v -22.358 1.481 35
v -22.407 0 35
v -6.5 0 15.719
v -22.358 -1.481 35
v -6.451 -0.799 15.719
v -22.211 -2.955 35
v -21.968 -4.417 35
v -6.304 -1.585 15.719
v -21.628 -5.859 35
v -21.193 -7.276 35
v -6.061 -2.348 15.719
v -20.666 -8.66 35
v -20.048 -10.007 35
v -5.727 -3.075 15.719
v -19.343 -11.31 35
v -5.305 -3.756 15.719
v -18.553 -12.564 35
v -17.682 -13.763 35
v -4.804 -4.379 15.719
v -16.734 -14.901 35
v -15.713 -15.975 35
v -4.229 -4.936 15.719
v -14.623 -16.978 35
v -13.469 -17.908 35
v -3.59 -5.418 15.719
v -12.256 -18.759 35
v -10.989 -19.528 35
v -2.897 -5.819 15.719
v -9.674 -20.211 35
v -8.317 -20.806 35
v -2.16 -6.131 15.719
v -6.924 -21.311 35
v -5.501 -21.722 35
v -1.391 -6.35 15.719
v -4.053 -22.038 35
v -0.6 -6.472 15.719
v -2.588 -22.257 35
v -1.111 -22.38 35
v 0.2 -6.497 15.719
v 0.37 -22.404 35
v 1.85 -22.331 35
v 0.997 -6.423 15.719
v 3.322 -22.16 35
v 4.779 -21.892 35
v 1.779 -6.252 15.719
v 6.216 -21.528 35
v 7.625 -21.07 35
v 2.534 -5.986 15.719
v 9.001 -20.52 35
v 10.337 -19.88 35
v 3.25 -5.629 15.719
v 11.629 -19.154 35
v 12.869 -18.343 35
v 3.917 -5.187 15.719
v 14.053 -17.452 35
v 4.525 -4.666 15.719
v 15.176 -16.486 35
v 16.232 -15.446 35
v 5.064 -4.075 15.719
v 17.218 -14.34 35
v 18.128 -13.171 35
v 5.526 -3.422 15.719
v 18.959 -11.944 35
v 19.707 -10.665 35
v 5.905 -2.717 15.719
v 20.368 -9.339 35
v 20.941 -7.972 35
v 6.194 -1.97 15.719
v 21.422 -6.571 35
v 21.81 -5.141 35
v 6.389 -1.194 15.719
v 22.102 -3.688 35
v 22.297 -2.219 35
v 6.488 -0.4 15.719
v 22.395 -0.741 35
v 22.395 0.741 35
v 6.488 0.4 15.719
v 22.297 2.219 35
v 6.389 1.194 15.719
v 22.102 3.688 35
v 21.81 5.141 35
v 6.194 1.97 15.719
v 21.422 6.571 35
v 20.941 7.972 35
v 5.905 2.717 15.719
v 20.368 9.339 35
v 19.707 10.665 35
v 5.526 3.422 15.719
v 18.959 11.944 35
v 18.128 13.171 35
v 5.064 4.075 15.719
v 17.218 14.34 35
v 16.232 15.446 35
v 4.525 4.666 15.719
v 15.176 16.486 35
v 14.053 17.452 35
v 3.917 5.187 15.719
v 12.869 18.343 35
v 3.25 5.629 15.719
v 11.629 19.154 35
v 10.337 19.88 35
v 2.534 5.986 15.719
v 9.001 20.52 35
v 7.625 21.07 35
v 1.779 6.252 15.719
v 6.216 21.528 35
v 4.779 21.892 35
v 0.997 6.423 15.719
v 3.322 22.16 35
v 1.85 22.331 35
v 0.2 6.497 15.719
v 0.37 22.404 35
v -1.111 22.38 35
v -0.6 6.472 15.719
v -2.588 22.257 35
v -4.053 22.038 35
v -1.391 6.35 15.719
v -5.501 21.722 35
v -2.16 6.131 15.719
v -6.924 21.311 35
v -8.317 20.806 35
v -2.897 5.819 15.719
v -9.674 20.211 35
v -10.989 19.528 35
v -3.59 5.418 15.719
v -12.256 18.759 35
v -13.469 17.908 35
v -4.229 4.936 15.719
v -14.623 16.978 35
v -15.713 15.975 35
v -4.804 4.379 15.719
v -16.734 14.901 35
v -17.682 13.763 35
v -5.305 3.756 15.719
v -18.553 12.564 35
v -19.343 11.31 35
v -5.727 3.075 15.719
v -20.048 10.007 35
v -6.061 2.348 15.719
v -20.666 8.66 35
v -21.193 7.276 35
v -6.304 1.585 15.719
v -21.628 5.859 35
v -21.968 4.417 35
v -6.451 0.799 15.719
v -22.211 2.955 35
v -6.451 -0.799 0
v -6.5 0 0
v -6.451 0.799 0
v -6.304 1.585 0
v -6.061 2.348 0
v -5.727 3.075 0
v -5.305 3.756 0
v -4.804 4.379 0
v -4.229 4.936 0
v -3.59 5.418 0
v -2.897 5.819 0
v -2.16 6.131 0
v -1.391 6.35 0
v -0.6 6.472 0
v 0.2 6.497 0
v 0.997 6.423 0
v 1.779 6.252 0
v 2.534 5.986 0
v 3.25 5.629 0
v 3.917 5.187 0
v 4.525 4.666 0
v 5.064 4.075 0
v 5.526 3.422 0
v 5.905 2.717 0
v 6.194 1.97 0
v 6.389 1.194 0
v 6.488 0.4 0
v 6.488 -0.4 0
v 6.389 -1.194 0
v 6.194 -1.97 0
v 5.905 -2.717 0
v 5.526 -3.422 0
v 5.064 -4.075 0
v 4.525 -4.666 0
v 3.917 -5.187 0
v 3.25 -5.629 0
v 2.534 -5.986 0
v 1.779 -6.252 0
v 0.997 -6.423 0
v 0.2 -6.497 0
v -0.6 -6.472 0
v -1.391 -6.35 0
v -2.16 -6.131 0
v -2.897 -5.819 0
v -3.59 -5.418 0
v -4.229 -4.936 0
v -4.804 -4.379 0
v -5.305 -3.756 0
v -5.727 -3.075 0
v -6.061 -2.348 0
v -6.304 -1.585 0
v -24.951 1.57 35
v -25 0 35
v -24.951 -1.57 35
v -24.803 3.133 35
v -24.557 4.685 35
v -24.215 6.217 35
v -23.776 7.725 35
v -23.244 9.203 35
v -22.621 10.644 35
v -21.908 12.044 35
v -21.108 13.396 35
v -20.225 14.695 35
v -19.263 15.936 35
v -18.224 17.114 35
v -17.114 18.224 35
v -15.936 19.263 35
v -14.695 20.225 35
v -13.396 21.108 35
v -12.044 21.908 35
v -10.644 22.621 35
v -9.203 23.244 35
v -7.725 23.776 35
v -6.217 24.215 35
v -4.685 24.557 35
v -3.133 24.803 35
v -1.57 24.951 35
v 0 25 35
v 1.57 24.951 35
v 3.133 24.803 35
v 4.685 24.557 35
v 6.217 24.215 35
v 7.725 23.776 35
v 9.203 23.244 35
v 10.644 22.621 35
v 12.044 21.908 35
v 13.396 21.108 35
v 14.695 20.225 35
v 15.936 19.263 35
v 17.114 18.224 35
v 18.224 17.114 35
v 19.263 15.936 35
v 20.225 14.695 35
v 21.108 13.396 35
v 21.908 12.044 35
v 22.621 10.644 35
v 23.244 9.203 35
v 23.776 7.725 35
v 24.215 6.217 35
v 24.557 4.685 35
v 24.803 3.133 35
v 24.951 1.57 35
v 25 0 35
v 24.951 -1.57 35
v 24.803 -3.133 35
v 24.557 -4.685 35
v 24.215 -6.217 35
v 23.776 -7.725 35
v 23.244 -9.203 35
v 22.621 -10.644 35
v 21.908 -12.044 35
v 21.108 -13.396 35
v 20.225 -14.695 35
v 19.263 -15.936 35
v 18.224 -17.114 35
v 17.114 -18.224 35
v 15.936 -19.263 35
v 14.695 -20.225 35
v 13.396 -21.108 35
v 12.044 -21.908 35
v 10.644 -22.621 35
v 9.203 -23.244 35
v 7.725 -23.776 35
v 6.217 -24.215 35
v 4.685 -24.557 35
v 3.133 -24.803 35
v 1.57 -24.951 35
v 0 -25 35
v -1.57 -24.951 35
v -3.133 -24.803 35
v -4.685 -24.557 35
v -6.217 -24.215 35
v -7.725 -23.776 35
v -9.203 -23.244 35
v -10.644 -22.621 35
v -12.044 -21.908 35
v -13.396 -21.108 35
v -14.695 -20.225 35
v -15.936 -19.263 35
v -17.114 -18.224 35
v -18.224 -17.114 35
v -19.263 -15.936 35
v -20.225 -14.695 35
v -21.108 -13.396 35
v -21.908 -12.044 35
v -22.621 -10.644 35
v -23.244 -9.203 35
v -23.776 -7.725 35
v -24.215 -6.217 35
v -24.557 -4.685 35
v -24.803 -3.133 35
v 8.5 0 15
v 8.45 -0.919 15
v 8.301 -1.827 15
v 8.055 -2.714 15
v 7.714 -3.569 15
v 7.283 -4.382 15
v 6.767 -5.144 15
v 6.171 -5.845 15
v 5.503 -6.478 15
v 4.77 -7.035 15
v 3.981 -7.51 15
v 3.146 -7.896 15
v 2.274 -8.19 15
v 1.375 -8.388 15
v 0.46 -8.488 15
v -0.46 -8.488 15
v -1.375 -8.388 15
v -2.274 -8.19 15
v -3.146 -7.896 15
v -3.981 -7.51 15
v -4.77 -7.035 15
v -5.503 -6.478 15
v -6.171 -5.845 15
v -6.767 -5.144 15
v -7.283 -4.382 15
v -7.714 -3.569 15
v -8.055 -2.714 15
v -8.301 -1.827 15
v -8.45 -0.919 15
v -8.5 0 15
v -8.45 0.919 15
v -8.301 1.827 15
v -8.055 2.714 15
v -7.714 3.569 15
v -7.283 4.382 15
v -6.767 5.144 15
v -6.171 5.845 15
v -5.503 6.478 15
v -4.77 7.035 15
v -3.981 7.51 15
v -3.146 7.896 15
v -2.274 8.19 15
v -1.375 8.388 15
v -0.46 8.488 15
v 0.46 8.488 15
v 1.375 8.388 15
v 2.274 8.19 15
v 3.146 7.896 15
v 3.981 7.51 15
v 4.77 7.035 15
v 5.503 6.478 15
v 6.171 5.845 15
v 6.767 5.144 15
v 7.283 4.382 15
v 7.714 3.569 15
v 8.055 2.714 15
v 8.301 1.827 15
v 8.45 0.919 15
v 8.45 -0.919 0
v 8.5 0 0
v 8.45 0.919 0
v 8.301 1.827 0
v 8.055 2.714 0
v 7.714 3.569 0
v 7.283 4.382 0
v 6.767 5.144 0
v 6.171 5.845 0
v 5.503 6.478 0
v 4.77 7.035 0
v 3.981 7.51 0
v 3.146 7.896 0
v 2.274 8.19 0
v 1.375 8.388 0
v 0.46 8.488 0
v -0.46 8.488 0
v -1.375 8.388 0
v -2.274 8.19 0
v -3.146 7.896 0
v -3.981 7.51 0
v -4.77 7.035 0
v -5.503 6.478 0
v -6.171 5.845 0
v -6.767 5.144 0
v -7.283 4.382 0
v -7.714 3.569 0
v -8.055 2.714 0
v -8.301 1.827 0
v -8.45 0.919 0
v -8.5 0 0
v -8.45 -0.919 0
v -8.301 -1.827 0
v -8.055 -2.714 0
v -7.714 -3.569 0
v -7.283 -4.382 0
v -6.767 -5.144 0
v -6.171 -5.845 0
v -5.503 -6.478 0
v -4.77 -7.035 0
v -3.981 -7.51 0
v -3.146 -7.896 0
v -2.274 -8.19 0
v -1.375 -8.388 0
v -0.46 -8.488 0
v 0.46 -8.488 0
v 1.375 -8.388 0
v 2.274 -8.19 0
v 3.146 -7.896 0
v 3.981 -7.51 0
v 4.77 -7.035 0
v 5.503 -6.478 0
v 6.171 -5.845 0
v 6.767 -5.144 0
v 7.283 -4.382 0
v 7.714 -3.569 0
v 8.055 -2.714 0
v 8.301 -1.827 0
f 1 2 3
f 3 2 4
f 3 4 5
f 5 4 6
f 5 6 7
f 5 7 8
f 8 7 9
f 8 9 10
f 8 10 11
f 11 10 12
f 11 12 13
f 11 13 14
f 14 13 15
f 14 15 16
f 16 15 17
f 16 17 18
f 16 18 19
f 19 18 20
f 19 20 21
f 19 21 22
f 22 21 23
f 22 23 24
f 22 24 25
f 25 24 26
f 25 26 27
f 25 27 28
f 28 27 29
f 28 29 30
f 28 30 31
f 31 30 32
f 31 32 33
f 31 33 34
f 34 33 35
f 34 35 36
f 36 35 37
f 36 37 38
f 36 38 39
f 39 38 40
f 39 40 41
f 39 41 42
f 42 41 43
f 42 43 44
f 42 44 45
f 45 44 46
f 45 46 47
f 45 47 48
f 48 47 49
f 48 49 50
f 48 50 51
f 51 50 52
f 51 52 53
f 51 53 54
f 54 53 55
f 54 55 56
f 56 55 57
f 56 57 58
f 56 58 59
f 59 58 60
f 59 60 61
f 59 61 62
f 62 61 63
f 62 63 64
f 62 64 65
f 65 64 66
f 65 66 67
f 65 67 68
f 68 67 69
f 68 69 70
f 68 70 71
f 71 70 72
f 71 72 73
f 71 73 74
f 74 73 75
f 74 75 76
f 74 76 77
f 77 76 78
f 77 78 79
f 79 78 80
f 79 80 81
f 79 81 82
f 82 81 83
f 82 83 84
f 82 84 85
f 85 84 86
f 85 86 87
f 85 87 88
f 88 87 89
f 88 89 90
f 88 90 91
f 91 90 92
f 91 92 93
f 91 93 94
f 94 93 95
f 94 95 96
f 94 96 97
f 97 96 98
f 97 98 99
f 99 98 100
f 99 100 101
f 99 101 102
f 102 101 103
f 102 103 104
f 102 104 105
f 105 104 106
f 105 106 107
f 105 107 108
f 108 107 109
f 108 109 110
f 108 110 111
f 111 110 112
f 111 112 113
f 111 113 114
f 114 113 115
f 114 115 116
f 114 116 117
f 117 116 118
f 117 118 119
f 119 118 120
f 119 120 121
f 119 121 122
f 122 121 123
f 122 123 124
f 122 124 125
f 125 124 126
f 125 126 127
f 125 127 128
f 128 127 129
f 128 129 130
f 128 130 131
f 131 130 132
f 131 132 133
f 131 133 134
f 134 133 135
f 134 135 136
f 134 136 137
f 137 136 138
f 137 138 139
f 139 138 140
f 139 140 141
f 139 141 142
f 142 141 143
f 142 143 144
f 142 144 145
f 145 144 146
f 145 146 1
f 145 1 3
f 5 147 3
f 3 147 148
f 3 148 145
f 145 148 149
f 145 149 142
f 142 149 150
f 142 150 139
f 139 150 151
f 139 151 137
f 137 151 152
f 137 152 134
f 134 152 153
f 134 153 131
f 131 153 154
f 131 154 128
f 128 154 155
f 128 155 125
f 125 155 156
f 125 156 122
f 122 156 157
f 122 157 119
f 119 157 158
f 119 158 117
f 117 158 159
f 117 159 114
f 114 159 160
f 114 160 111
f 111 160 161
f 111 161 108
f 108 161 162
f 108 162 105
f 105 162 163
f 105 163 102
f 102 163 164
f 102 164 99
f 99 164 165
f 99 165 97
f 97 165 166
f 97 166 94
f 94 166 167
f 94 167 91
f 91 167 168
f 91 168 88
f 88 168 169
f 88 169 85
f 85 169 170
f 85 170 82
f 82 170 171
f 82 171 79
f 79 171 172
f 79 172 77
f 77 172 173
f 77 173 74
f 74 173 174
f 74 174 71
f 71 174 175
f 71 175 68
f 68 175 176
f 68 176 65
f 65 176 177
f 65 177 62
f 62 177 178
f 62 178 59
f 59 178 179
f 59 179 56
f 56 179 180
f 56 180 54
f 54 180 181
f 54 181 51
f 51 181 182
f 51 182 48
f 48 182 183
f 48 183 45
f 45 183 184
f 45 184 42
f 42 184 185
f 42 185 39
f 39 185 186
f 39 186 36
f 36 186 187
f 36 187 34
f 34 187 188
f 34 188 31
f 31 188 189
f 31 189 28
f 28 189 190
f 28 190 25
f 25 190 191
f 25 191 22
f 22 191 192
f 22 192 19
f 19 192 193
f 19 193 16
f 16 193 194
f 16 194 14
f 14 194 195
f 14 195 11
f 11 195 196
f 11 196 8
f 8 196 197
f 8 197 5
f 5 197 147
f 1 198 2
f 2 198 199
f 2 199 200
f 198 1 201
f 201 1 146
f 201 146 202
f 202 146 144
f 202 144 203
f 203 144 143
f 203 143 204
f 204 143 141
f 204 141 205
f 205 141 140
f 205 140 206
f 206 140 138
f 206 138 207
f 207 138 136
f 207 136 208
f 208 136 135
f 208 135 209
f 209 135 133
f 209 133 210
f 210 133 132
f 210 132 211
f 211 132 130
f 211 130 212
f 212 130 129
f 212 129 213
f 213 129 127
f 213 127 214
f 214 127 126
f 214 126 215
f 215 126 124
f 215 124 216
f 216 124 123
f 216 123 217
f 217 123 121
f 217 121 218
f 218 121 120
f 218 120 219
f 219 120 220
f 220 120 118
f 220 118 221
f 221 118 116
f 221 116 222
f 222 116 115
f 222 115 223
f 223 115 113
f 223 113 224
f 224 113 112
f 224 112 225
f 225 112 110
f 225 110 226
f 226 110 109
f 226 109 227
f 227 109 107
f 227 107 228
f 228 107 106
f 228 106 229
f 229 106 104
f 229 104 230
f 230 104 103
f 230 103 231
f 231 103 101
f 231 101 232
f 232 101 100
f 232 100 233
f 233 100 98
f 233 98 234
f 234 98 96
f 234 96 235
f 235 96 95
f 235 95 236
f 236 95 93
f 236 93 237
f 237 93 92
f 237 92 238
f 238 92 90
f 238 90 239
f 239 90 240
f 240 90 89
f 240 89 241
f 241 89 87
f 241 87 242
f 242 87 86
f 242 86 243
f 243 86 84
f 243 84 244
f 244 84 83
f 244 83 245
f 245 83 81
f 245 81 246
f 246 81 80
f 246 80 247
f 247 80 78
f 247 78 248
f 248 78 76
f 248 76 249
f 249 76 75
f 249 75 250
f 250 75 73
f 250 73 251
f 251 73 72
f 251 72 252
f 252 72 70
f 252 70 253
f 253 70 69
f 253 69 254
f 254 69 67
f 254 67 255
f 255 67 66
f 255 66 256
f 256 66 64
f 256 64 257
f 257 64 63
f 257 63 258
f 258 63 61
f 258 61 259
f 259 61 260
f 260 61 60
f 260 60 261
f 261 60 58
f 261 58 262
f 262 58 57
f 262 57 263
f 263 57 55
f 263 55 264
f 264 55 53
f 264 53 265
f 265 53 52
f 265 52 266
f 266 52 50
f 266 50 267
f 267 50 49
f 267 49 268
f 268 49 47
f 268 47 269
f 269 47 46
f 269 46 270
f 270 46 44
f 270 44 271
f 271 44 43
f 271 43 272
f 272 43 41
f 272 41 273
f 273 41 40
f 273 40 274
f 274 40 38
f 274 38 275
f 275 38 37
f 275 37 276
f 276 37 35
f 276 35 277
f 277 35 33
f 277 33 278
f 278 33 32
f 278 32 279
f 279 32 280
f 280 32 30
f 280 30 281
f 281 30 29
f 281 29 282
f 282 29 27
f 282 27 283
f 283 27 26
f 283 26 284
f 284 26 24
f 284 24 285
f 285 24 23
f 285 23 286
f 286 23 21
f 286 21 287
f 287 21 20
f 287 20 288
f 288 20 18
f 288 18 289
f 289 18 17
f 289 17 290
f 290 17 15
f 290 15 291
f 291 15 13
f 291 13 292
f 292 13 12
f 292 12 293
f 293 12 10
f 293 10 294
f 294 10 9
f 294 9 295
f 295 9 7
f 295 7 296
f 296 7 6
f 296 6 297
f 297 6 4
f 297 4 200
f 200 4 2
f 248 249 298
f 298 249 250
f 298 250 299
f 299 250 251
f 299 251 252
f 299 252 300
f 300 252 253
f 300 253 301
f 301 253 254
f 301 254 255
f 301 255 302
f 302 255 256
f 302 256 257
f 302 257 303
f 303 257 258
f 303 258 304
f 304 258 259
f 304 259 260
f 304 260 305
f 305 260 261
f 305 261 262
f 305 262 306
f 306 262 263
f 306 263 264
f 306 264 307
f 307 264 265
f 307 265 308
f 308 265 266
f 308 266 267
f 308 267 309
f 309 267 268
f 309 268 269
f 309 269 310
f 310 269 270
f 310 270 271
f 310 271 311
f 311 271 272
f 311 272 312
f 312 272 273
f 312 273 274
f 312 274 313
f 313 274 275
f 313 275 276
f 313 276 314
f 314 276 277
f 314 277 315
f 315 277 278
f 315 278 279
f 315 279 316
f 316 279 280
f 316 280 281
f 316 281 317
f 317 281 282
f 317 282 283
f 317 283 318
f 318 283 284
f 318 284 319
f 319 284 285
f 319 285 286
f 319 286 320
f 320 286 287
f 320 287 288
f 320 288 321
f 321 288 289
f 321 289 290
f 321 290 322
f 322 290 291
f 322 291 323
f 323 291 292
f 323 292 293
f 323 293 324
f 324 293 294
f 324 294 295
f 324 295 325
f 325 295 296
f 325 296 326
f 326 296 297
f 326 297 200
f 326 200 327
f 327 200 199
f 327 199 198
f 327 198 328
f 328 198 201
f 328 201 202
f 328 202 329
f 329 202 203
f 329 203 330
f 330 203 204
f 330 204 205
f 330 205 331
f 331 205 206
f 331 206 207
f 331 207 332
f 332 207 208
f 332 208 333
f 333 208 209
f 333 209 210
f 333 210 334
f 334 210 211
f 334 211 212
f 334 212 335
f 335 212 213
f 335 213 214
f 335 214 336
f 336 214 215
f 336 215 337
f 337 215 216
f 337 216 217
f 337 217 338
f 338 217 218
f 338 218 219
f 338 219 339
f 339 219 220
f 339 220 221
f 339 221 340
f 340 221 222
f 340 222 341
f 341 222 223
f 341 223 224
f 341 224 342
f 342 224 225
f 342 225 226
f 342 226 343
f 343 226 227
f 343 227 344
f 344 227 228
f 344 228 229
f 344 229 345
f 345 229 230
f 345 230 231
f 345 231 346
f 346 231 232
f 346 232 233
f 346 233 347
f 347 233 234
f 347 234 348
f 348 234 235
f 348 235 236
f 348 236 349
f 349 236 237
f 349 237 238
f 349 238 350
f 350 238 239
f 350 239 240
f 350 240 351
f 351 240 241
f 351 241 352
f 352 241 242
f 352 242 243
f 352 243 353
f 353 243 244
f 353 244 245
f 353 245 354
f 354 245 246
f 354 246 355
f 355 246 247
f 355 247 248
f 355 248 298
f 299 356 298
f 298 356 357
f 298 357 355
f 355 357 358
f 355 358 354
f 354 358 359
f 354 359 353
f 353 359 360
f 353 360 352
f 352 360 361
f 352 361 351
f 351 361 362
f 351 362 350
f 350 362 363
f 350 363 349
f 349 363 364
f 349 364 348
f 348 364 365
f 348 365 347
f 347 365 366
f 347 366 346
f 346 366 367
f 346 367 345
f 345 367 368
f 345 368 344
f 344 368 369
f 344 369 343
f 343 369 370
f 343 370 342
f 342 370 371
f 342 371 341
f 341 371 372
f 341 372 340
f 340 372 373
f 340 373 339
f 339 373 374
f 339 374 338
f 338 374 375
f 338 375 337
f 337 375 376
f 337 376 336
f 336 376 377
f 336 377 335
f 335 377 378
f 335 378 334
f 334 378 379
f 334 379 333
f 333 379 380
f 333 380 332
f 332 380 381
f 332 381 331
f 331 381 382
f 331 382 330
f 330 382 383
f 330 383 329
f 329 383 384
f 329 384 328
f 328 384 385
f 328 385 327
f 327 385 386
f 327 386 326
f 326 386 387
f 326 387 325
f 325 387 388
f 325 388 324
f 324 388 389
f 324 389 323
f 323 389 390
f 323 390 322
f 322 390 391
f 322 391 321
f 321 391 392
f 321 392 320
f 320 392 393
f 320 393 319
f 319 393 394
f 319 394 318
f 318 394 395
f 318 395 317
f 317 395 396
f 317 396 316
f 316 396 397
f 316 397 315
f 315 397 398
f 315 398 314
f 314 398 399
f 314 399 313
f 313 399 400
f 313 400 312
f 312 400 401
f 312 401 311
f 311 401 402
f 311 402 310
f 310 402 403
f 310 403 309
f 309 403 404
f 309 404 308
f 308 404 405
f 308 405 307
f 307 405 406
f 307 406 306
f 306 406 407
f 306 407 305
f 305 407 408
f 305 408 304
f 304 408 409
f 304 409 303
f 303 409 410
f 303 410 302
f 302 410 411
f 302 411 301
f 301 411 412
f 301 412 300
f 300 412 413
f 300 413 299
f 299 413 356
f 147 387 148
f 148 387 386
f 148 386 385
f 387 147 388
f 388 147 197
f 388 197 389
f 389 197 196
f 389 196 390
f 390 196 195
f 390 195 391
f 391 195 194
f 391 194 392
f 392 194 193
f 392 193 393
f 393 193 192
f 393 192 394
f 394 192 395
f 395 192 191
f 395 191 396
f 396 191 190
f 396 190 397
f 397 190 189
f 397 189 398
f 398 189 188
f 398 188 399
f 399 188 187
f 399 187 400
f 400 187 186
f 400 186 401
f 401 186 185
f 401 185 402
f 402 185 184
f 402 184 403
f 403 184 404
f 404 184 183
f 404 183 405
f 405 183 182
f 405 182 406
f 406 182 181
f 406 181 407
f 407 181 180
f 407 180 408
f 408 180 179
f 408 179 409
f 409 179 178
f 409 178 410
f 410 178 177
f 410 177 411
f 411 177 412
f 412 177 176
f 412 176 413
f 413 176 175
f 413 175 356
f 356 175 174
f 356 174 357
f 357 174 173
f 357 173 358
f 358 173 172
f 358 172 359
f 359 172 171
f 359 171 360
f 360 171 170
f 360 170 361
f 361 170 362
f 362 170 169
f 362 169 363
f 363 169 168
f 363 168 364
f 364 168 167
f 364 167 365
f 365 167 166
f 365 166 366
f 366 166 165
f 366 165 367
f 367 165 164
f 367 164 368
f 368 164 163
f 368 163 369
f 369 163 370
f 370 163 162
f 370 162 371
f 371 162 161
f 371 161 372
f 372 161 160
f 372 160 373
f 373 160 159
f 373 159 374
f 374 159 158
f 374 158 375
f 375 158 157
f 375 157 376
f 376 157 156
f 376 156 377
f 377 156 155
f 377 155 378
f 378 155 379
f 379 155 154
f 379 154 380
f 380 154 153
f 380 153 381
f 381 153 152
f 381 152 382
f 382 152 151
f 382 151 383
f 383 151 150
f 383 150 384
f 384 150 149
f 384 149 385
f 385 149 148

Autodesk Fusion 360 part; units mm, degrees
sketch "Sketch1" plane through (0, 0, 0) normal (0, 0, 1) x (1, 0, 0)
  circle A0 centre (0, 0) radius 8.5
  dimension "d6" = 17
extrude "Extrude1" add sketch "Sketch1" along normal blind 15
ref_plane "WorkPlane1" through (0, 0, 35) normal (0, 0, 1) x (1, 0, 0)
sketch "Sketch2" plane through (0, 0, 35) normal (0, 0, 1) x (1, 0, 0)
  circle A0 centre (0, 0) radius 25
  dimension "d10" = 50
loft "Loft1" add profiles "Sketch2" section 1 section 2 face at (2.7075, 1.6235, 15)
shell "Shell1" thickness 2 removed faces 2 at (2.7075, 1.6235, 0) at (-6.7759, -1.242, 35)
equation "FH = 20 mm" comment "funnel height"
equation "TL = 15 mm" comment "Tube Length"
equation "WT = 2 mm" comment "Wall Thickness"
equation "LD = 50 mm" comment "Large Diameter"
equation "SD = 17 mm" comment "Small Diameter"
equation "d6 = SD"
equation "d7 = TL"
equation "d9 = FH"
equation "d10 = LD"
equation "d11 = WT"
